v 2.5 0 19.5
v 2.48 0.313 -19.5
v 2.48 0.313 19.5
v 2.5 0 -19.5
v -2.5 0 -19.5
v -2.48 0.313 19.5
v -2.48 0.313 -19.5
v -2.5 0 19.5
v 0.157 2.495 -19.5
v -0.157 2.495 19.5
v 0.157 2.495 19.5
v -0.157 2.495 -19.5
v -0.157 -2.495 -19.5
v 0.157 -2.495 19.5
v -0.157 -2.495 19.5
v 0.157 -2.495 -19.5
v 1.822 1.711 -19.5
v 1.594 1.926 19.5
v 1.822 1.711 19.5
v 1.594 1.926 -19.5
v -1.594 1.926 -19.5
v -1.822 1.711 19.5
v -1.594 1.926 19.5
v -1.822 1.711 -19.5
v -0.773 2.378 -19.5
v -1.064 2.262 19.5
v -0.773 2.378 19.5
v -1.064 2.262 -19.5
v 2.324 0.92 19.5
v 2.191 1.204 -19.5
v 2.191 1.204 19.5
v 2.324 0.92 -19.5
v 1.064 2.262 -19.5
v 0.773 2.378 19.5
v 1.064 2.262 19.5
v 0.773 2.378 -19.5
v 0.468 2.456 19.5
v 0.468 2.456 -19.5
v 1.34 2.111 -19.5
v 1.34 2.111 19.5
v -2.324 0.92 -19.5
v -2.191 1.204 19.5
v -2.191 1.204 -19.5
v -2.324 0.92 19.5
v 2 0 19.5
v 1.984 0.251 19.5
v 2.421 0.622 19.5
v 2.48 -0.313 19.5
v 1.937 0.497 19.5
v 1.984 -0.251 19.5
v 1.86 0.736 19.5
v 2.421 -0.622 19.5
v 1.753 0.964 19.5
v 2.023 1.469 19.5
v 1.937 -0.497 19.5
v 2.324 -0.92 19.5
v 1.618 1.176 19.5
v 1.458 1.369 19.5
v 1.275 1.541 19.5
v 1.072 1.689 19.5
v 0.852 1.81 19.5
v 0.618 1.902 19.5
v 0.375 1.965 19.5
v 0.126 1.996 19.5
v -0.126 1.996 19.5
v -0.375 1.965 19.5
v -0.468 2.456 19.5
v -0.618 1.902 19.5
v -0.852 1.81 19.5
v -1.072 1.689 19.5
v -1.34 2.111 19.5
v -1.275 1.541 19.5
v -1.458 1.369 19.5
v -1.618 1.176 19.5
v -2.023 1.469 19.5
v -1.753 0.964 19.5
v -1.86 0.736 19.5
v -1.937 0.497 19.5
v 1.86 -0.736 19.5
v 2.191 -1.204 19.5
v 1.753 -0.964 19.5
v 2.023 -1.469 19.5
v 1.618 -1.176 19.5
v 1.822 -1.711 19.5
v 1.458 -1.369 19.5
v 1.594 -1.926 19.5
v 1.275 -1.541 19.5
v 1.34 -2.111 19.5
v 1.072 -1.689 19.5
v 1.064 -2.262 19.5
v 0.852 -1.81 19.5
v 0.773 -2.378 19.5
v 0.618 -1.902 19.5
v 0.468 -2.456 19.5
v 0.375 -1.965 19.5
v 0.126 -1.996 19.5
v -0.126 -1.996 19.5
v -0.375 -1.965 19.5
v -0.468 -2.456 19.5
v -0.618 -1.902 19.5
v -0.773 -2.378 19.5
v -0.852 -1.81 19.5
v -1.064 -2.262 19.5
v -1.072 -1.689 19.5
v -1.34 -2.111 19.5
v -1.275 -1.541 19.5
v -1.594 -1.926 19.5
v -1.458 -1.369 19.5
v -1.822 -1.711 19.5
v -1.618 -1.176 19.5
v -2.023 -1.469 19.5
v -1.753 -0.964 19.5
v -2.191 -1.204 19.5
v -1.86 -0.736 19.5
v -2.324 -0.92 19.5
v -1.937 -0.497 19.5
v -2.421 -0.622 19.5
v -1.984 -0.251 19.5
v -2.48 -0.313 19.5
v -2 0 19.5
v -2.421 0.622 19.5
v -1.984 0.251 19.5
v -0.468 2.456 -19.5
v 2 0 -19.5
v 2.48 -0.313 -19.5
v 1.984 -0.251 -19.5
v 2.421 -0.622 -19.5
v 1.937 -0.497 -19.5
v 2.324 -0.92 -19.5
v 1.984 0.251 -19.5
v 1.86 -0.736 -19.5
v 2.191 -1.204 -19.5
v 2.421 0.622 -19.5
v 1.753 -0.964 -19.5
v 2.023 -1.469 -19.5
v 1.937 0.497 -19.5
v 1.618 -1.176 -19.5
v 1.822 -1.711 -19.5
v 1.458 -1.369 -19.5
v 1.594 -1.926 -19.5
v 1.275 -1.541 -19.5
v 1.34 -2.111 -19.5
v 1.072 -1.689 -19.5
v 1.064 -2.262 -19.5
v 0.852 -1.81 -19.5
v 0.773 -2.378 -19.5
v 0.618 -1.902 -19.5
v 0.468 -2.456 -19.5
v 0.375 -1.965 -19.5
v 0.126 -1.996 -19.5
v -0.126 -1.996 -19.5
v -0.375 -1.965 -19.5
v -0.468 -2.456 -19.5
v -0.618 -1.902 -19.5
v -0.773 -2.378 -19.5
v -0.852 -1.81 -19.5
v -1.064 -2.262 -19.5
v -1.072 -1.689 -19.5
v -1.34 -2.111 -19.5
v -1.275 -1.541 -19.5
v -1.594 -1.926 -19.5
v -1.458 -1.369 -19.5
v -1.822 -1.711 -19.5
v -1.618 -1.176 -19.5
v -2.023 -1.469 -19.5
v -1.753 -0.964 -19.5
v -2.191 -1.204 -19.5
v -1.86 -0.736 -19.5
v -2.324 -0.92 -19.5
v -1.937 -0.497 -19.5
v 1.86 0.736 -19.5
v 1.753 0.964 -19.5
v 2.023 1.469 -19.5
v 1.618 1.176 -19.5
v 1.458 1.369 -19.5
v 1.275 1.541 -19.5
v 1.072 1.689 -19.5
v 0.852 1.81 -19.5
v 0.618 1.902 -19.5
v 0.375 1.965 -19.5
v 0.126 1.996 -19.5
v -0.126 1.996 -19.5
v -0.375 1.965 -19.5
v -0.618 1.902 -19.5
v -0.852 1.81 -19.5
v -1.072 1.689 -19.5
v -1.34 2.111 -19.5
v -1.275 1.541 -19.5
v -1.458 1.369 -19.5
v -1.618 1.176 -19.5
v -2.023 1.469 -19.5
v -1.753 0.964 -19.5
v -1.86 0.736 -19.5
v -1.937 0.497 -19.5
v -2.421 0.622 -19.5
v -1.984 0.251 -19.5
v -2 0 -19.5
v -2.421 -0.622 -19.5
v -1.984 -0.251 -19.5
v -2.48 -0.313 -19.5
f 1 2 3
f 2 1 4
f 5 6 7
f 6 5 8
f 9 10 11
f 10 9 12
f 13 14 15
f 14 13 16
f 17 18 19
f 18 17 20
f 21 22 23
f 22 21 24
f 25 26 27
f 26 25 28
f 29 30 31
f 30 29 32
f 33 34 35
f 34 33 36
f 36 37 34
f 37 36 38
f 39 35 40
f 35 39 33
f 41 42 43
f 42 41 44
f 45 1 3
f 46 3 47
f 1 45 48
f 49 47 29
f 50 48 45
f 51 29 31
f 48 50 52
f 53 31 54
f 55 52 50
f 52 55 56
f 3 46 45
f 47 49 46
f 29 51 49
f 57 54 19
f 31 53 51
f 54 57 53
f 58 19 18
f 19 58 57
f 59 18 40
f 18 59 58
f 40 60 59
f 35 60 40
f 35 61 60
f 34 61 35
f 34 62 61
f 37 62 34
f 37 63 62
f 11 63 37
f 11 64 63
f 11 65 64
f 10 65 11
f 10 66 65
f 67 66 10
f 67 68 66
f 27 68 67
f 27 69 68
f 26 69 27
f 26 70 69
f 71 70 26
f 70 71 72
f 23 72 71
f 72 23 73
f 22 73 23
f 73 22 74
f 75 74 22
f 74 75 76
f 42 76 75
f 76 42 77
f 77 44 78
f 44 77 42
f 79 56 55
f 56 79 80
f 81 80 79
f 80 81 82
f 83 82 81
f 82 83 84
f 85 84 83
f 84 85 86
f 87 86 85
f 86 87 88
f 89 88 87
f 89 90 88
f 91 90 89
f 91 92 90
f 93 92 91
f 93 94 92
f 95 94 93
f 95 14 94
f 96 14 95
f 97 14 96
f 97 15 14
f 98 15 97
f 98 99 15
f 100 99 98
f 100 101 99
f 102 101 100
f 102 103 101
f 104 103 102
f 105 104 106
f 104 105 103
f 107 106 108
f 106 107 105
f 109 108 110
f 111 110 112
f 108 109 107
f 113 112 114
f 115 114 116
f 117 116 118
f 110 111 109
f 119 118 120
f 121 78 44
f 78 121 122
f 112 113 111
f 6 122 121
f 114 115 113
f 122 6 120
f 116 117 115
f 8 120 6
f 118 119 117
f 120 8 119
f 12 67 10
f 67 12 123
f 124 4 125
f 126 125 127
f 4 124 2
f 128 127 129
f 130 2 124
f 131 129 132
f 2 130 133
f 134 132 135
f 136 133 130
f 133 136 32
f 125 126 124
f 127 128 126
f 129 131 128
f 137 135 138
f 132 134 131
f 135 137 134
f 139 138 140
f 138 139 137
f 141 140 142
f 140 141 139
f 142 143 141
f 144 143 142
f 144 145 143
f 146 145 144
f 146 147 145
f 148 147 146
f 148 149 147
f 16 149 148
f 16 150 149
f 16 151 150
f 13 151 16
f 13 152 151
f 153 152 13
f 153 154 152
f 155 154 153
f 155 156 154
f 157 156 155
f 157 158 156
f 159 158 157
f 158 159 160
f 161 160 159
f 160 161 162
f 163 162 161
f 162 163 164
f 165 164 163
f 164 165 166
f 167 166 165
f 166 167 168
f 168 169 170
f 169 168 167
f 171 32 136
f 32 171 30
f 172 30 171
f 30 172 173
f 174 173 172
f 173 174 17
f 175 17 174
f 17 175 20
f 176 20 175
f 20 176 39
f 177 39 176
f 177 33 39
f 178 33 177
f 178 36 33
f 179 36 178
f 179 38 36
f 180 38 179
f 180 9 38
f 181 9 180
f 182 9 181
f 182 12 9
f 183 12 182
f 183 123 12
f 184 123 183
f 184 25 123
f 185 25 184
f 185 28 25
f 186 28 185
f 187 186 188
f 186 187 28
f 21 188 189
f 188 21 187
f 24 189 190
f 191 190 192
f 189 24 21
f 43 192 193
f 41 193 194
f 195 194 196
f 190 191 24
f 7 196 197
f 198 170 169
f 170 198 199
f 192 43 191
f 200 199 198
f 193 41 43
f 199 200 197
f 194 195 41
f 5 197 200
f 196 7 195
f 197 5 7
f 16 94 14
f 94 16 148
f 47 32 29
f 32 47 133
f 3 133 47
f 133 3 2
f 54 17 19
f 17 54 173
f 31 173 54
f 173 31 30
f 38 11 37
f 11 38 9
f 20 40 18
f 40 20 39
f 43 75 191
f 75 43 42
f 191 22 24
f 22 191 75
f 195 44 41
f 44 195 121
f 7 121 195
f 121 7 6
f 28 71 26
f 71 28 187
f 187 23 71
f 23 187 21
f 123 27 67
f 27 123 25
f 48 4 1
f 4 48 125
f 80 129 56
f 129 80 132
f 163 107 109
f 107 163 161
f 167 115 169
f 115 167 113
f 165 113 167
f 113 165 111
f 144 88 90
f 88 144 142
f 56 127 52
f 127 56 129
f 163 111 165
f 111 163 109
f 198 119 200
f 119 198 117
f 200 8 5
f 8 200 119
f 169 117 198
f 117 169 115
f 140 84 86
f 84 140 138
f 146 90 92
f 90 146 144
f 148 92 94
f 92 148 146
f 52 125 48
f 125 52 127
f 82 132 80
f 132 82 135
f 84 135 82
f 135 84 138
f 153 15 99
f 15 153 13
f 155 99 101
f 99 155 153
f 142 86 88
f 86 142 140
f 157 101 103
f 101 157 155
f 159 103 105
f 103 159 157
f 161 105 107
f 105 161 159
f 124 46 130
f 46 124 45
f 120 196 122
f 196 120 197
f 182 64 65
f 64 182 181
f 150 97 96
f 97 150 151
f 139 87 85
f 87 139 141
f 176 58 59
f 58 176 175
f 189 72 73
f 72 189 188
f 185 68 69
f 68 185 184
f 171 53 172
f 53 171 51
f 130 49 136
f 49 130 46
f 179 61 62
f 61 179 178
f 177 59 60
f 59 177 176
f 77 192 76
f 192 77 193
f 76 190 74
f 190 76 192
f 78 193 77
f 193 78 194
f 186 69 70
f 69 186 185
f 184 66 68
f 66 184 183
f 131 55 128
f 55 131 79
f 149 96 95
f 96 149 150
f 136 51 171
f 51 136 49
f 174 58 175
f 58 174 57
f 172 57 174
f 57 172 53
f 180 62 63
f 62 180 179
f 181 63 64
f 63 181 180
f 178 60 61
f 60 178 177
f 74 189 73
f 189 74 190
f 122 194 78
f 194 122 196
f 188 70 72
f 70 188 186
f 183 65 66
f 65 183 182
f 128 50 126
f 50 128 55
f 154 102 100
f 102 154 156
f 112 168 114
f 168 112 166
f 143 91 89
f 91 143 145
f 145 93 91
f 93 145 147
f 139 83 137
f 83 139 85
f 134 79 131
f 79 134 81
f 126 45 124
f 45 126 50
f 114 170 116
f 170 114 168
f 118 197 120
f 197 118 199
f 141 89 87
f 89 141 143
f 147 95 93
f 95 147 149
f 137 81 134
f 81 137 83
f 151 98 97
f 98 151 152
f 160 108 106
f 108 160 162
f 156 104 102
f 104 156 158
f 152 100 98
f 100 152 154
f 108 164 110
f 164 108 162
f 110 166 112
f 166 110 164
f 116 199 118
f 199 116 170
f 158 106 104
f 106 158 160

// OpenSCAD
$fn = 50;


difference() {
	union() {
		translate(v = [0, 0, -19.5000000000]) {
			cylinder(h = 39, r = 2.5000000000);
		}
	}
	union() {
		translate(v = [0, 0, -100.0000000000]) {
			cylinder(h = 200, r = 2.0000000000);
		}
	}
}
